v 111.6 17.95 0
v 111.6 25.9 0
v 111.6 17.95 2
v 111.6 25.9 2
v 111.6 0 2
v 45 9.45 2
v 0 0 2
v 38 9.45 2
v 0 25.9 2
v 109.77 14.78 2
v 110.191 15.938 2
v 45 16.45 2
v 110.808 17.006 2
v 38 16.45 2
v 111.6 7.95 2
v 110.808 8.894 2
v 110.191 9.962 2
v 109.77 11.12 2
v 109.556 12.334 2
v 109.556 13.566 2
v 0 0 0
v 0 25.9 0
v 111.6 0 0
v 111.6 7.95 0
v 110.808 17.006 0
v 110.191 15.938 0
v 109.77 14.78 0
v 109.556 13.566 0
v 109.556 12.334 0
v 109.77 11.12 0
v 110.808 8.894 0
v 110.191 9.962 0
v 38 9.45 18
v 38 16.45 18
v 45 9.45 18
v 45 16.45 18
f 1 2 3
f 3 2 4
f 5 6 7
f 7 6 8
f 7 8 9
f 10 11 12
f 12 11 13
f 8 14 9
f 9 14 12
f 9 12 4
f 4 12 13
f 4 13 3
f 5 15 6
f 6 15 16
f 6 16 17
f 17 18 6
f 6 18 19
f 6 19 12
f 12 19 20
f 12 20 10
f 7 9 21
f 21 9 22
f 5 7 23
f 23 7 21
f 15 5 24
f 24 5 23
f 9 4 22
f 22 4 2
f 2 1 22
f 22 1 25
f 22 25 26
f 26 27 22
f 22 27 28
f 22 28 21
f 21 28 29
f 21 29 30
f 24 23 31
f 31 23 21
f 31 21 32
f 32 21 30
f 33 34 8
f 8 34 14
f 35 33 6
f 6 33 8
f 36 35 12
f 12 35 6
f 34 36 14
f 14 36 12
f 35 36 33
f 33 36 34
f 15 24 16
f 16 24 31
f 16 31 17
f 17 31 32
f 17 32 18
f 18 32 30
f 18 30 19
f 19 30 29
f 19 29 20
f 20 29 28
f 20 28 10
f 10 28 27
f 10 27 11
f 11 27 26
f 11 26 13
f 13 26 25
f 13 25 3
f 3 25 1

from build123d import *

# Parameters (mm, degrees)
ESQUISSE1_W             = 111.6
ESQUISSE1_H             = 25.9
BOSS_EXTRU_1_DEPTH      = 2
ESQUISSE2_W             = 7
ESQUISSE2_H             = 7
BOSS_EXTRU_2_DEPTH      = 16
ENL_V_MAT_EXTRU_1_DEPTH = 2


with BuildPart() as part:
    # Esquisse1 → Boss.-Extru.1 (new body)
    with BuildSketch(Plane.XY):
        with Locations((55.8, 12.95)):
            Rectangle(ESQUISSE1_W, ESQUISSE1_H)
    extrude(amount=BOSS_EXTRU_1_DEPTH)

    # Esquisse2 → Boss.-Extru.2 (add)
    with BuildSketch(Plane.XY.offset(2)):
        with Locations((41.5, 12.95)):
            Rectangle(ESQUISSE2_W, ESQUISSE2_H)
    extrude(amount=BOSS_EXTRU_2_DEPTH)

    # Esquisse3 → Enlèv. mat.-Extru.1 (cut)
    with BuildSketch(Plane(origin=(0, 0, 0), x_dir=(-1, 0, 0), z_dir=(0, 0, -1))):
        with BuildLine():
            Line((-111.6, 7.95), (-111.6, 17.95))
            ThreePointArc((-111.6, 17.95), (-109.528932188, 12.95), (-111.6, 7.95))
        make_face()
    extrude(amount=-ENL_V_MAT_EXTRU_1_DEPTH, mode=Mode.SUBTRACT)


solid = part.part
